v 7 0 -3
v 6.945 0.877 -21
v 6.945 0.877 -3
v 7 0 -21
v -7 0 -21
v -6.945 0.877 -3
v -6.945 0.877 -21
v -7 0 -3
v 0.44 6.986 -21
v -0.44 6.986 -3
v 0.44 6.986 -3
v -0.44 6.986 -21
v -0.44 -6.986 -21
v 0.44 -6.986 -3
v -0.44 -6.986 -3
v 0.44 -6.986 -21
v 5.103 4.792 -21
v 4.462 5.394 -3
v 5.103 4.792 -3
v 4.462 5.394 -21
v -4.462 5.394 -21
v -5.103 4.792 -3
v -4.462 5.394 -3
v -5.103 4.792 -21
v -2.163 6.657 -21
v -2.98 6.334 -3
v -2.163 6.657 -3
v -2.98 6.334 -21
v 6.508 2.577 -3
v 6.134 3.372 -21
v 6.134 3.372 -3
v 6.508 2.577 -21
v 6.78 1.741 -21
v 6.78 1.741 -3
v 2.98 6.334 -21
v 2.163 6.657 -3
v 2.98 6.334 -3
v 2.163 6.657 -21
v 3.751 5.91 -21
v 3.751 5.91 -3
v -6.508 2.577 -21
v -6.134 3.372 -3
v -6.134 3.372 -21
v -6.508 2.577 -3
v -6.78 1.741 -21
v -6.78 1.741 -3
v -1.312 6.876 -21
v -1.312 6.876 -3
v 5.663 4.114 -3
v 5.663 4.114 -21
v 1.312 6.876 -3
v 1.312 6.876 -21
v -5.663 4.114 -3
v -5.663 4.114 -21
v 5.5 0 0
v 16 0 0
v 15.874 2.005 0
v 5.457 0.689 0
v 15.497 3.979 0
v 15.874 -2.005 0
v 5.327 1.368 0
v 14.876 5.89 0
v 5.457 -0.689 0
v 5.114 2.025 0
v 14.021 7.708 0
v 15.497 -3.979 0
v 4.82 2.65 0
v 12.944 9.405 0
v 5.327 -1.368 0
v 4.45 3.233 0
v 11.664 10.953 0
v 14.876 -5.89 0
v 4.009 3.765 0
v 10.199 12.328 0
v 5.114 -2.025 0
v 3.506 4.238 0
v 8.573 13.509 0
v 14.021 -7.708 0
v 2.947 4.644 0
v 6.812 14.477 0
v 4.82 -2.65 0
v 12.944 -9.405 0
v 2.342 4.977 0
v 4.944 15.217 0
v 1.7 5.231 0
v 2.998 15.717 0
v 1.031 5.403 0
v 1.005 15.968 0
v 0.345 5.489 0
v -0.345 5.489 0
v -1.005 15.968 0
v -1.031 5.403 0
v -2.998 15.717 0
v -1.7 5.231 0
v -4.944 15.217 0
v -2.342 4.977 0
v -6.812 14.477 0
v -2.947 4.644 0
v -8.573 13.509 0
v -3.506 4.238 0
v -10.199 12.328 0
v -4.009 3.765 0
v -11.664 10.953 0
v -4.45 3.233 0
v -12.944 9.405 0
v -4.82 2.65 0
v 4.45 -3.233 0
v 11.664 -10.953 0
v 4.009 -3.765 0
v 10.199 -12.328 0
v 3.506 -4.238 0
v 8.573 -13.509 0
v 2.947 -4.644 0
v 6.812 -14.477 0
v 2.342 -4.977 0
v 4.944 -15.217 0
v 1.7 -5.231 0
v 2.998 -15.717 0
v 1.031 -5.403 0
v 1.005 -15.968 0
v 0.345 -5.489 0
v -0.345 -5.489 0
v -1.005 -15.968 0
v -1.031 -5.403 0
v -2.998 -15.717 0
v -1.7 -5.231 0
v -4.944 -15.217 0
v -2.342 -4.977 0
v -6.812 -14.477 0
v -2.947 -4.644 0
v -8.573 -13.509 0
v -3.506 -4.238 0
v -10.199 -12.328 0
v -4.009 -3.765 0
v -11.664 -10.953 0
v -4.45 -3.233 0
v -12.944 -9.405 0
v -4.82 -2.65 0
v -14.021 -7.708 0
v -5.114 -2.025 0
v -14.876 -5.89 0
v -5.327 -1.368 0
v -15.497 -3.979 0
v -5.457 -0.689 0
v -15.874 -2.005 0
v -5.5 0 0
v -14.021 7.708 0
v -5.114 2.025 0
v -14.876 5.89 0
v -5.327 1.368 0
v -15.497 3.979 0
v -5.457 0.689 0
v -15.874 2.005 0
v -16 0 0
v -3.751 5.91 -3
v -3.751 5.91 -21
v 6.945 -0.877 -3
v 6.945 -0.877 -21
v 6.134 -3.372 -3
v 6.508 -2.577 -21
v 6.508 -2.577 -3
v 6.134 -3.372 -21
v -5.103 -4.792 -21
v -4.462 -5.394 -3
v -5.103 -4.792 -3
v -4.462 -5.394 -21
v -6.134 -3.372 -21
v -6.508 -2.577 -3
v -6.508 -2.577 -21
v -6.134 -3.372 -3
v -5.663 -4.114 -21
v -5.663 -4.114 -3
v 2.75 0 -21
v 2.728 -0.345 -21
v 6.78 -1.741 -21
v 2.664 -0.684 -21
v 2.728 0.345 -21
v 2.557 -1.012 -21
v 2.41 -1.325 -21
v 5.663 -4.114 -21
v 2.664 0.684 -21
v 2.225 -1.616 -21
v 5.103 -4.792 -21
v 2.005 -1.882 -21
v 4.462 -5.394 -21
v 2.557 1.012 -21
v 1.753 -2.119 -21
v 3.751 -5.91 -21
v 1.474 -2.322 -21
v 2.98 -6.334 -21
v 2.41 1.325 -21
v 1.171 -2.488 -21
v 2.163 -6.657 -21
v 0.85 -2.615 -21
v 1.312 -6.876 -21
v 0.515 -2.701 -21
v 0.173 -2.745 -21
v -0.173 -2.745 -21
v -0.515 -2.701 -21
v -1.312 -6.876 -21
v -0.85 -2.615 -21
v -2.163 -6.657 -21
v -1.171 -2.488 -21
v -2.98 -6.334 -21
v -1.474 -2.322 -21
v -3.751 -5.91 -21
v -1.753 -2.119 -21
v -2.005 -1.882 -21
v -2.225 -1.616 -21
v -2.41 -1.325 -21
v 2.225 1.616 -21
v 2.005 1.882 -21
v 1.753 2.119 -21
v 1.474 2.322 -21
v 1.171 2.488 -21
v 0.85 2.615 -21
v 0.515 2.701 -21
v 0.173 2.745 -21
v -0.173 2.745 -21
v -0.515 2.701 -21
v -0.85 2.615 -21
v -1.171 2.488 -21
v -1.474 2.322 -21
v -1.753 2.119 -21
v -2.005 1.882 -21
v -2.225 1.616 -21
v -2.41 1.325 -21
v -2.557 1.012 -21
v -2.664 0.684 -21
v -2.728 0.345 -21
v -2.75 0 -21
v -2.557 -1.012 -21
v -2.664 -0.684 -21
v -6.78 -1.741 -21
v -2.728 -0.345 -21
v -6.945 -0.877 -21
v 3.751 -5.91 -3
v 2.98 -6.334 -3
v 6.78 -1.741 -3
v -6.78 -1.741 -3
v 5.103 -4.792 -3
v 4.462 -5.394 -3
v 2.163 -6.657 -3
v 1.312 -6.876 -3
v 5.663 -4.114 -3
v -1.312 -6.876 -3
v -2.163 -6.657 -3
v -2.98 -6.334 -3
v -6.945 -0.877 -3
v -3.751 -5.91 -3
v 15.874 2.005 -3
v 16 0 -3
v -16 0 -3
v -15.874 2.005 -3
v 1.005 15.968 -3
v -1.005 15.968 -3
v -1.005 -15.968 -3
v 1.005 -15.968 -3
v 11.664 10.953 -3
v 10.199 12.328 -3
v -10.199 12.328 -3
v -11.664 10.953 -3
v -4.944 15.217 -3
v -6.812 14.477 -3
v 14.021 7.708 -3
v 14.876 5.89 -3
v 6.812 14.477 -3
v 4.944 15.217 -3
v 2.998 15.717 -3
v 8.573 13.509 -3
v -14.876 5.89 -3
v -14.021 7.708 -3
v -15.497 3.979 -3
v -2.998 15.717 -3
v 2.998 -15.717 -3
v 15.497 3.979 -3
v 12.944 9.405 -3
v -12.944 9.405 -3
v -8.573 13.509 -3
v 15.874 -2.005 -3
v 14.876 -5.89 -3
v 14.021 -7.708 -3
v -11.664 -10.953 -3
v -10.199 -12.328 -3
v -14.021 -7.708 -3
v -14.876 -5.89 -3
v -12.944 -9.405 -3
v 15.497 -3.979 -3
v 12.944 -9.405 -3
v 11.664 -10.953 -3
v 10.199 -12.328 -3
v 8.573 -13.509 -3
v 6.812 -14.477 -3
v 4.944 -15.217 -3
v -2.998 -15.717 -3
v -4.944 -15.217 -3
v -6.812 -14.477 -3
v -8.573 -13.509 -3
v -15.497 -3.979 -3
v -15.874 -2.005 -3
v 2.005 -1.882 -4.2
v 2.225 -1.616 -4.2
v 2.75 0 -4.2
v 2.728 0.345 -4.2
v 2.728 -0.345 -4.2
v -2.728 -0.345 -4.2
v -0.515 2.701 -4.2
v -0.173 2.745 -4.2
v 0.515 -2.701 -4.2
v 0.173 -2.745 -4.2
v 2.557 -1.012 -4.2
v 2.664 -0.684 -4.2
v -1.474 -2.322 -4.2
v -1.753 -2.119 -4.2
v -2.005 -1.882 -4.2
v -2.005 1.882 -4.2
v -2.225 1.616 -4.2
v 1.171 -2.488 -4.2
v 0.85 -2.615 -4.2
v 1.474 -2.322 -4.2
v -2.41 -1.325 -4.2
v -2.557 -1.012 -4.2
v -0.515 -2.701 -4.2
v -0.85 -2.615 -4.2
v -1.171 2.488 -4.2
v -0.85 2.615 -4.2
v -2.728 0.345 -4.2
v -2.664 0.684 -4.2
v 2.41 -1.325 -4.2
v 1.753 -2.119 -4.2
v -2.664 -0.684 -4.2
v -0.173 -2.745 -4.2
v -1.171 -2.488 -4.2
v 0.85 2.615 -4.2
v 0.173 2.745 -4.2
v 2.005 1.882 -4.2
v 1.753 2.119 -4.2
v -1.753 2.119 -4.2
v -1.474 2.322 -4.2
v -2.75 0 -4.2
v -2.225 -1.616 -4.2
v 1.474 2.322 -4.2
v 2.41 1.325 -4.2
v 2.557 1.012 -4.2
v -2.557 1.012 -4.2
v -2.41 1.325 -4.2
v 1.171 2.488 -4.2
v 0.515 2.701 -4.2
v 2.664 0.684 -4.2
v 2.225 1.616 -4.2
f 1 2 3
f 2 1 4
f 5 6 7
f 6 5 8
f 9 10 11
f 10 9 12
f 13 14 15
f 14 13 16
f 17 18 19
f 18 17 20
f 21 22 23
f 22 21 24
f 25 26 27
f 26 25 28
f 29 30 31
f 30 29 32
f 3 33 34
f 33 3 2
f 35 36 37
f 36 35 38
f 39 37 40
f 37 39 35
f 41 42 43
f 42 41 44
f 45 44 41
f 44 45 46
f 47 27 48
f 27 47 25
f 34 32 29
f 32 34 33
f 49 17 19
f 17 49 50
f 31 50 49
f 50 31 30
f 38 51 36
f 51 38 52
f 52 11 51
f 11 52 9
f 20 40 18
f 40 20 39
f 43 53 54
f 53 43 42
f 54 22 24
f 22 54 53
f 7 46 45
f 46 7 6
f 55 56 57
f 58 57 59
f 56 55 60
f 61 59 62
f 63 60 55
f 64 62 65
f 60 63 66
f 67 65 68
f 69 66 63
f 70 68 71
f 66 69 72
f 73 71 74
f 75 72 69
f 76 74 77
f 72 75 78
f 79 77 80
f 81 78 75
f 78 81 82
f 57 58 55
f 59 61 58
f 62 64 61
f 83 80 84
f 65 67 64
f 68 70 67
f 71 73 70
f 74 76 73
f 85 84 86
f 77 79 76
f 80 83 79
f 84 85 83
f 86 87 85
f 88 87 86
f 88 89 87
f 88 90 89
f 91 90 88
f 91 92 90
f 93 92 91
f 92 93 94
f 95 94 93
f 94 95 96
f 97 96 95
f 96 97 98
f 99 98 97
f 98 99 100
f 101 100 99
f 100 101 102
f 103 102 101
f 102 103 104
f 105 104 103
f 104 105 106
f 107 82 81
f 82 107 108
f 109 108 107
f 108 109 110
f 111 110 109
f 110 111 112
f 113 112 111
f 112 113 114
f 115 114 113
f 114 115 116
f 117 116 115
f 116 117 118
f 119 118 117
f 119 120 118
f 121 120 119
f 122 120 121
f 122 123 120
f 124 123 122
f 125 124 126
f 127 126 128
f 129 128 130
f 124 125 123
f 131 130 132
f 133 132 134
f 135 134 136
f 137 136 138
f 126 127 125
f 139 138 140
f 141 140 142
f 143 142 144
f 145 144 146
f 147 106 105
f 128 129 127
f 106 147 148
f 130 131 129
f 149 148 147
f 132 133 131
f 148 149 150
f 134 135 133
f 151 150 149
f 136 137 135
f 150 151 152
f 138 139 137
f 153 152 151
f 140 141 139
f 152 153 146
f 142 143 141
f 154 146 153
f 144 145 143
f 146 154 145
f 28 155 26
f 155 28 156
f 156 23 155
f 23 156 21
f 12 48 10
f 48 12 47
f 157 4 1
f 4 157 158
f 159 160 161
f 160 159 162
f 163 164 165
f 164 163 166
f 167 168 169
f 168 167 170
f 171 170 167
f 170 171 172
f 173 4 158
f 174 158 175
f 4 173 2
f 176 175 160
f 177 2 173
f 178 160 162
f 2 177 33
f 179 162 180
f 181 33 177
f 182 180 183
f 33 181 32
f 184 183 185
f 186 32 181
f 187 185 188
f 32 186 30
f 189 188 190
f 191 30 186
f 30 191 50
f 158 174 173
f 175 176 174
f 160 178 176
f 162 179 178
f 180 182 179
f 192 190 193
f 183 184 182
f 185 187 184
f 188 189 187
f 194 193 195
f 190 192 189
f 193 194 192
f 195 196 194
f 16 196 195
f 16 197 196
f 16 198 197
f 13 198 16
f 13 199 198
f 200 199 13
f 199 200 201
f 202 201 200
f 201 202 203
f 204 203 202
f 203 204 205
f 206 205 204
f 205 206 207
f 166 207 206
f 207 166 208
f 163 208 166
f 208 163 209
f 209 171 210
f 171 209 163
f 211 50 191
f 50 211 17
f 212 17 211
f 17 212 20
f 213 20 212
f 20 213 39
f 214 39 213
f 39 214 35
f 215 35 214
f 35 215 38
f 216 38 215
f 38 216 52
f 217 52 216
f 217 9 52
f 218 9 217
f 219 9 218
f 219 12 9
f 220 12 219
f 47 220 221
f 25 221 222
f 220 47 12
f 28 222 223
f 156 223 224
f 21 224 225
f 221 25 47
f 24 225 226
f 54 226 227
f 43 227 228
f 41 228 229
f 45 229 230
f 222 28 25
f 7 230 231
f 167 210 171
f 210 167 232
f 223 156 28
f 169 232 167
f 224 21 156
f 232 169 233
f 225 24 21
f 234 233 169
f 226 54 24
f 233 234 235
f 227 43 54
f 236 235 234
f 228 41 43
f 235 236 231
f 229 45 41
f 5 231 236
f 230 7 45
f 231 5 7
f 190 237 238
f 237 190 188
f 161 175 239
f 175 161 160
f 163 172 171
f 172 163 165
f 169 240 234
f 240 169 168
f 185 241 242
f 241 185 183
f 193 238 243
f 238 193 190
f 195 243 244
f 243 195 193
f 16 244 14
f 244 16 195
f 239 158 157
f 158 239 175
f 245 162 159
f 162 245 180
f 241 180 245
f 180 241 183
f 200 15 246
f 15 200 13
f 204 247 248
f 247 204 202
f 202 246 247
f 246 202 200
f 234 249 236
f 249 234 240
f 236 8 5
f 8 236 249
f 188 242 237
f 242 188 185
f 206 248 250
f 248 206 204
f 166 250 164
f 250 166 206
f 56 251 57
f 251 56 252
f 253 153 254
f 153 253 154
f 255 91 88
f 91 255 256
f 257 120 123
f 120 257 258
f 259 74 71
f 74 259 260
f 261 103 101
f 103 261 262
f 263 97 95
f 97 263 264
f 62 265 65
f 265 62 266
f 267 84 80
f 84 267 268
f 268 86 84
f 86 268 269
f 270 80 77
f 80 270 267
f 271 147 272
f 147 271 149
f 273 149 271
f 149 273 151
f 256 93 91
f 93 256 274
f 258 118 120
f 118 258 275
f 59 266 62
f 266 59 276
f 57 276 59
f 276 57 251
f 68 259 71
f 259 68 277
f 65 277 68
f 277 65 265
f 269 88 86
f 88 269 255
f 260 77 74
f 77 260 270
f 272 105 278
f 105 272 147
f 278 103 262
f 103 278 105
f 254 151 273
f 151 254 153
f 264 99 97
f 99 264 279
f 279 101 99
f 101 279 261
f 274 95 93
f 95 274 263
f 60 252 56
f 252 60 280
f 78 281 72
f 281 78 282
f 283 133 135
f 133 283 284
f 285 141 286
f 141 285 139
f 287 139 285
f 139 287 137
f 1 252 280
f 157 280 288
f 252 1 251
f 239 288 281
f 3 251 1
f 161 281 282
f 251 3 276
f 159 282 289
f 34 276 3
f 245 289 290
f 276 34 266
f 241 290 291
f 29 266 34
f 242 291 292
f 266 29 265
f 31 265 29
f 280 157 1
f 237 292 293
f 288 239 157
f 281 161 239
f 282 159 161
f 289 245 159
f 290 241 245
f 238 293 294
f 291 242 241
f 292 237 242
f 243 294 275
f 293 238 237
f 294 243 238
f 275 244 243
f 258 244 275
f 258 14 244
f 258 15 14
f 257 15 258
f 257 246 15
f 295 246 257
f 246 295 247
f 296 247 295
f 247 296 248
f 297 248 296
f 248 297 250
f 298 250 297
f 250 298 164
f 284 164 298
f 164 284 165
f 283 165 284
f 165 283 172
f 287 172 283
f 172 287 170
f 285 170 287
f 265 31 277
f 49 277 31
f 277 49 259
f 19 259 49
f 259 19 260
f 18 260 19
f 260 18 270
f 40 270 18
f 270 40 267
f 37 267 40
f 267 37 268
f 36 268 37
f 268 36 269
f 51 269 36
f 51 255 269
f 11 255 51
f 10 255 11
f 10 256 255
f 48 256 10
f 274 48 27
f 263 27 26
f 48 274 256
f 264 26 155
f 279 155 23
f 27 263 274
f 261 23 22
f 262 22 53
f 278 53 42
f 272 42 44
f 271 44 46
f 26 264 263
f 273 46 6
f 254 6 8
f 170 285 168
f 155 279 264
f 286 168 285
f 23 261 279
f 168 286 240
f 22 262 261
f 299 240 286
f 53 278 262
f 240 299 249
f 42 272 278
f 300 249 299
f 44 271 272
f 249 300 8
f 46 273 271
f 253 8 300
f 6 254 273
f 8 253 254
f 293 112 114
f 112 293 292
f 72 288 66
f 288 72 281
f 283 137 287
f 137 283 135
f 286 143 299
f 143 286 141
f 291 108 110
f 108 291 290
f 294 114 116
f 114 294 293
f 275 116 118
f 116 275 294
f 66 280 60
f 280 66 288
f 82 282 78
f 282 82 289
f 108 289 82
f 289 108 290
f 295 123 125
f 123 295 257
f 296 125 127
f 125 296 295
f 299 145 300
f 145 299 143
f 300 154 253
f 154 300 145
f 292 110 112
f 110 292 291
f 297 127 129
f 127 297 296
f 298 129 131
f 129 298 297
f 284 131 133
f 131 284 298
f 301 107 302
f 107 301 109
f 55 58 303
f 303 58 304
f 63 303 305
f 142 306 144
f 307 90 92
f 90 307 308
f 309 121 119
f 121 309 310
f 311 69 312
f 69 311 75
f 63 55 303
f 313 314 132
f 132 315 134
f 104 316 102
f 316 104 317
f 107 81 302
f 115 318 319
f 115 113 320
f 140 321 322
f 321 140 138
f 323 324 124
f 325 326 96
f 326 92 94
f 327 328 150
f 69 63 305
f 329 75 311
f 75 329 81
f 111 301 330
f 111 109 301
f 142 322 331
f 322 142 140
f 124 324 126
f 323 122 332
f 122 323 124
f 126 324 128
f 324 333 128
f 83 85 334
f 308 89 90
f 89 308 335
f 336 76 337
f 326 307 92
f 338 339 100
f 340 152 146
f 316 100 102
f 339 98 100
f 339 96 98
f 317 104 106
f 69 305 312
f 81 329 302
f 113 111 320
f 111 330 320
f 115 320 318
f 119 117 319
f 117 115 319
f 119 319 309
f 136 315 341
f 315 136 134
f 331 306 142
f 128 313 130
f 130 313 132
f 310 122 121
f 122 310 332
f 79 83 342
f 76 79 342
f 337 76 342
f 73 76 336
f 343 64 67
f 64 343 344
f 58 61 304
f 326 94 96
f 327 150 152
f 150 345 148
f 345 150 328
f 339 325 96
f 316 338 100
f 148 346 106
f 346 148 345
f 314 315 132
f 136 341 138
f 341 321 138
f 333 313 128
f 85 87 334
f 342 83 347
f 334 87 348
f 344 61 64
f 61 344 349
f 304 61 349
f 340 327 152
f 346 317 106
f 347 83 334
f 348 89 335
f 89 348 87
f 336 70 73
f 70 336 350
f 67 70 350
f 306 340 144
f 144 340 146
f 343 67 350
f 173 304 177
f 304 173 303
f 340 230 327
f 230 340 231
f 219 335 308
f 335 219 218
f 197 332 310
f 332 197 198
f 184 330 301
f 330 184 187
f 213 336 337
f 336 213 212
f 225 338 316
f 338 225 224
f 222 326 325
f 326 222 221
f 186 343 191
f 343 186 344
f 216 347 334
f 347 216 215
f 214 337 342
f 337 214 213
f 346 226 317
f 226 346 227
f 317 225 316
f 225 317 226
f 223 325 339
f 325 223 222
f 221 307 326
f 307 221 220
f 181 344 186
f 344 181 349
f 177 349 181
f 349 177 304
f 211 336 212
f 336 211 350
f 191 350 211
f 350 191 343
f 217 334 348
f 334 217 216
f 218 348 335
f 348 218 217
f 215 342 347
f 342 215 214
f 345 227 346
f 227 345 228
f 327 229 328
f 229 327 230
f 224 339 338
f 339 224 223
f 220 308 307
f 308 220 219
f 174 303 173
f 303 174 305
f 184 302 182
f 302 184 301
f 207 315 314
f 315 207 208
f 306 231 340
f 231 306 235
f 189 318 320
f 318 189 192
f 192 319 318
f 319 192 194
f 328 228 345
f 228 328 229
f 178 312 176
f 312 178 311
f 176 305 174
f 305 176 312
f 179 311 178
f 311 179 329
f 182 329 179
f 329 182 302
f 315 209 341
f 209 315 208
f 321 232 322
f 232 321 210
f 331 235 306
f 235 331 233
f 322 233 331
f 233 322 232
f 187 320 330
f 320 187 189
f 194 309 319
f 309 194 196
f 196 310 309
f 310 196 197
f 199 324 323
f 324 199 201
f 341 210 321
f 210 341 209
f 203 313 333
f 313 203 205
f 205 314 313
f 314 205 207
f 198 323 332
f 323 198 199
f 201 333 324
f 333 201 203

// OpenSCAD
$fn = 50;


difference() {
	union() {
		translate(v = [0, 0, -21.0000000000]) {
			cylinder(h = 21, r = 7.0000000000);
		}
		translate(v = [0, 0, -3.0000000000]) {
			cylinder(h = 3, r = 16.0000000000);
		}
	}
	union() {
		translate(v = [0, 0, 0]) {
			rotate(a = [0, 0, 0]) {
				difference() {
					union() {
						#translate(v = [0, 0, -21.0000000000]) {
							cylinder(h = 21, r = 2.2500000000);
						}
						#translate(v = [0, 0, -4.2000000000]) {
							cylinder(h = 4.2000000000, r1 = 2.7500000000, r2 = 5.5000000000);
						}
						#translate(v = [0, 0, -21.0000000000]) {
							cylinder(h = 21, r = 2.7500000000);
						}
						#translate(v = [0, 0, -21.0000000000]) {
							cylinder(h = 21, r = 2.2500000000);
						}
					}
					union();
				}
			}
		}
	}
}
